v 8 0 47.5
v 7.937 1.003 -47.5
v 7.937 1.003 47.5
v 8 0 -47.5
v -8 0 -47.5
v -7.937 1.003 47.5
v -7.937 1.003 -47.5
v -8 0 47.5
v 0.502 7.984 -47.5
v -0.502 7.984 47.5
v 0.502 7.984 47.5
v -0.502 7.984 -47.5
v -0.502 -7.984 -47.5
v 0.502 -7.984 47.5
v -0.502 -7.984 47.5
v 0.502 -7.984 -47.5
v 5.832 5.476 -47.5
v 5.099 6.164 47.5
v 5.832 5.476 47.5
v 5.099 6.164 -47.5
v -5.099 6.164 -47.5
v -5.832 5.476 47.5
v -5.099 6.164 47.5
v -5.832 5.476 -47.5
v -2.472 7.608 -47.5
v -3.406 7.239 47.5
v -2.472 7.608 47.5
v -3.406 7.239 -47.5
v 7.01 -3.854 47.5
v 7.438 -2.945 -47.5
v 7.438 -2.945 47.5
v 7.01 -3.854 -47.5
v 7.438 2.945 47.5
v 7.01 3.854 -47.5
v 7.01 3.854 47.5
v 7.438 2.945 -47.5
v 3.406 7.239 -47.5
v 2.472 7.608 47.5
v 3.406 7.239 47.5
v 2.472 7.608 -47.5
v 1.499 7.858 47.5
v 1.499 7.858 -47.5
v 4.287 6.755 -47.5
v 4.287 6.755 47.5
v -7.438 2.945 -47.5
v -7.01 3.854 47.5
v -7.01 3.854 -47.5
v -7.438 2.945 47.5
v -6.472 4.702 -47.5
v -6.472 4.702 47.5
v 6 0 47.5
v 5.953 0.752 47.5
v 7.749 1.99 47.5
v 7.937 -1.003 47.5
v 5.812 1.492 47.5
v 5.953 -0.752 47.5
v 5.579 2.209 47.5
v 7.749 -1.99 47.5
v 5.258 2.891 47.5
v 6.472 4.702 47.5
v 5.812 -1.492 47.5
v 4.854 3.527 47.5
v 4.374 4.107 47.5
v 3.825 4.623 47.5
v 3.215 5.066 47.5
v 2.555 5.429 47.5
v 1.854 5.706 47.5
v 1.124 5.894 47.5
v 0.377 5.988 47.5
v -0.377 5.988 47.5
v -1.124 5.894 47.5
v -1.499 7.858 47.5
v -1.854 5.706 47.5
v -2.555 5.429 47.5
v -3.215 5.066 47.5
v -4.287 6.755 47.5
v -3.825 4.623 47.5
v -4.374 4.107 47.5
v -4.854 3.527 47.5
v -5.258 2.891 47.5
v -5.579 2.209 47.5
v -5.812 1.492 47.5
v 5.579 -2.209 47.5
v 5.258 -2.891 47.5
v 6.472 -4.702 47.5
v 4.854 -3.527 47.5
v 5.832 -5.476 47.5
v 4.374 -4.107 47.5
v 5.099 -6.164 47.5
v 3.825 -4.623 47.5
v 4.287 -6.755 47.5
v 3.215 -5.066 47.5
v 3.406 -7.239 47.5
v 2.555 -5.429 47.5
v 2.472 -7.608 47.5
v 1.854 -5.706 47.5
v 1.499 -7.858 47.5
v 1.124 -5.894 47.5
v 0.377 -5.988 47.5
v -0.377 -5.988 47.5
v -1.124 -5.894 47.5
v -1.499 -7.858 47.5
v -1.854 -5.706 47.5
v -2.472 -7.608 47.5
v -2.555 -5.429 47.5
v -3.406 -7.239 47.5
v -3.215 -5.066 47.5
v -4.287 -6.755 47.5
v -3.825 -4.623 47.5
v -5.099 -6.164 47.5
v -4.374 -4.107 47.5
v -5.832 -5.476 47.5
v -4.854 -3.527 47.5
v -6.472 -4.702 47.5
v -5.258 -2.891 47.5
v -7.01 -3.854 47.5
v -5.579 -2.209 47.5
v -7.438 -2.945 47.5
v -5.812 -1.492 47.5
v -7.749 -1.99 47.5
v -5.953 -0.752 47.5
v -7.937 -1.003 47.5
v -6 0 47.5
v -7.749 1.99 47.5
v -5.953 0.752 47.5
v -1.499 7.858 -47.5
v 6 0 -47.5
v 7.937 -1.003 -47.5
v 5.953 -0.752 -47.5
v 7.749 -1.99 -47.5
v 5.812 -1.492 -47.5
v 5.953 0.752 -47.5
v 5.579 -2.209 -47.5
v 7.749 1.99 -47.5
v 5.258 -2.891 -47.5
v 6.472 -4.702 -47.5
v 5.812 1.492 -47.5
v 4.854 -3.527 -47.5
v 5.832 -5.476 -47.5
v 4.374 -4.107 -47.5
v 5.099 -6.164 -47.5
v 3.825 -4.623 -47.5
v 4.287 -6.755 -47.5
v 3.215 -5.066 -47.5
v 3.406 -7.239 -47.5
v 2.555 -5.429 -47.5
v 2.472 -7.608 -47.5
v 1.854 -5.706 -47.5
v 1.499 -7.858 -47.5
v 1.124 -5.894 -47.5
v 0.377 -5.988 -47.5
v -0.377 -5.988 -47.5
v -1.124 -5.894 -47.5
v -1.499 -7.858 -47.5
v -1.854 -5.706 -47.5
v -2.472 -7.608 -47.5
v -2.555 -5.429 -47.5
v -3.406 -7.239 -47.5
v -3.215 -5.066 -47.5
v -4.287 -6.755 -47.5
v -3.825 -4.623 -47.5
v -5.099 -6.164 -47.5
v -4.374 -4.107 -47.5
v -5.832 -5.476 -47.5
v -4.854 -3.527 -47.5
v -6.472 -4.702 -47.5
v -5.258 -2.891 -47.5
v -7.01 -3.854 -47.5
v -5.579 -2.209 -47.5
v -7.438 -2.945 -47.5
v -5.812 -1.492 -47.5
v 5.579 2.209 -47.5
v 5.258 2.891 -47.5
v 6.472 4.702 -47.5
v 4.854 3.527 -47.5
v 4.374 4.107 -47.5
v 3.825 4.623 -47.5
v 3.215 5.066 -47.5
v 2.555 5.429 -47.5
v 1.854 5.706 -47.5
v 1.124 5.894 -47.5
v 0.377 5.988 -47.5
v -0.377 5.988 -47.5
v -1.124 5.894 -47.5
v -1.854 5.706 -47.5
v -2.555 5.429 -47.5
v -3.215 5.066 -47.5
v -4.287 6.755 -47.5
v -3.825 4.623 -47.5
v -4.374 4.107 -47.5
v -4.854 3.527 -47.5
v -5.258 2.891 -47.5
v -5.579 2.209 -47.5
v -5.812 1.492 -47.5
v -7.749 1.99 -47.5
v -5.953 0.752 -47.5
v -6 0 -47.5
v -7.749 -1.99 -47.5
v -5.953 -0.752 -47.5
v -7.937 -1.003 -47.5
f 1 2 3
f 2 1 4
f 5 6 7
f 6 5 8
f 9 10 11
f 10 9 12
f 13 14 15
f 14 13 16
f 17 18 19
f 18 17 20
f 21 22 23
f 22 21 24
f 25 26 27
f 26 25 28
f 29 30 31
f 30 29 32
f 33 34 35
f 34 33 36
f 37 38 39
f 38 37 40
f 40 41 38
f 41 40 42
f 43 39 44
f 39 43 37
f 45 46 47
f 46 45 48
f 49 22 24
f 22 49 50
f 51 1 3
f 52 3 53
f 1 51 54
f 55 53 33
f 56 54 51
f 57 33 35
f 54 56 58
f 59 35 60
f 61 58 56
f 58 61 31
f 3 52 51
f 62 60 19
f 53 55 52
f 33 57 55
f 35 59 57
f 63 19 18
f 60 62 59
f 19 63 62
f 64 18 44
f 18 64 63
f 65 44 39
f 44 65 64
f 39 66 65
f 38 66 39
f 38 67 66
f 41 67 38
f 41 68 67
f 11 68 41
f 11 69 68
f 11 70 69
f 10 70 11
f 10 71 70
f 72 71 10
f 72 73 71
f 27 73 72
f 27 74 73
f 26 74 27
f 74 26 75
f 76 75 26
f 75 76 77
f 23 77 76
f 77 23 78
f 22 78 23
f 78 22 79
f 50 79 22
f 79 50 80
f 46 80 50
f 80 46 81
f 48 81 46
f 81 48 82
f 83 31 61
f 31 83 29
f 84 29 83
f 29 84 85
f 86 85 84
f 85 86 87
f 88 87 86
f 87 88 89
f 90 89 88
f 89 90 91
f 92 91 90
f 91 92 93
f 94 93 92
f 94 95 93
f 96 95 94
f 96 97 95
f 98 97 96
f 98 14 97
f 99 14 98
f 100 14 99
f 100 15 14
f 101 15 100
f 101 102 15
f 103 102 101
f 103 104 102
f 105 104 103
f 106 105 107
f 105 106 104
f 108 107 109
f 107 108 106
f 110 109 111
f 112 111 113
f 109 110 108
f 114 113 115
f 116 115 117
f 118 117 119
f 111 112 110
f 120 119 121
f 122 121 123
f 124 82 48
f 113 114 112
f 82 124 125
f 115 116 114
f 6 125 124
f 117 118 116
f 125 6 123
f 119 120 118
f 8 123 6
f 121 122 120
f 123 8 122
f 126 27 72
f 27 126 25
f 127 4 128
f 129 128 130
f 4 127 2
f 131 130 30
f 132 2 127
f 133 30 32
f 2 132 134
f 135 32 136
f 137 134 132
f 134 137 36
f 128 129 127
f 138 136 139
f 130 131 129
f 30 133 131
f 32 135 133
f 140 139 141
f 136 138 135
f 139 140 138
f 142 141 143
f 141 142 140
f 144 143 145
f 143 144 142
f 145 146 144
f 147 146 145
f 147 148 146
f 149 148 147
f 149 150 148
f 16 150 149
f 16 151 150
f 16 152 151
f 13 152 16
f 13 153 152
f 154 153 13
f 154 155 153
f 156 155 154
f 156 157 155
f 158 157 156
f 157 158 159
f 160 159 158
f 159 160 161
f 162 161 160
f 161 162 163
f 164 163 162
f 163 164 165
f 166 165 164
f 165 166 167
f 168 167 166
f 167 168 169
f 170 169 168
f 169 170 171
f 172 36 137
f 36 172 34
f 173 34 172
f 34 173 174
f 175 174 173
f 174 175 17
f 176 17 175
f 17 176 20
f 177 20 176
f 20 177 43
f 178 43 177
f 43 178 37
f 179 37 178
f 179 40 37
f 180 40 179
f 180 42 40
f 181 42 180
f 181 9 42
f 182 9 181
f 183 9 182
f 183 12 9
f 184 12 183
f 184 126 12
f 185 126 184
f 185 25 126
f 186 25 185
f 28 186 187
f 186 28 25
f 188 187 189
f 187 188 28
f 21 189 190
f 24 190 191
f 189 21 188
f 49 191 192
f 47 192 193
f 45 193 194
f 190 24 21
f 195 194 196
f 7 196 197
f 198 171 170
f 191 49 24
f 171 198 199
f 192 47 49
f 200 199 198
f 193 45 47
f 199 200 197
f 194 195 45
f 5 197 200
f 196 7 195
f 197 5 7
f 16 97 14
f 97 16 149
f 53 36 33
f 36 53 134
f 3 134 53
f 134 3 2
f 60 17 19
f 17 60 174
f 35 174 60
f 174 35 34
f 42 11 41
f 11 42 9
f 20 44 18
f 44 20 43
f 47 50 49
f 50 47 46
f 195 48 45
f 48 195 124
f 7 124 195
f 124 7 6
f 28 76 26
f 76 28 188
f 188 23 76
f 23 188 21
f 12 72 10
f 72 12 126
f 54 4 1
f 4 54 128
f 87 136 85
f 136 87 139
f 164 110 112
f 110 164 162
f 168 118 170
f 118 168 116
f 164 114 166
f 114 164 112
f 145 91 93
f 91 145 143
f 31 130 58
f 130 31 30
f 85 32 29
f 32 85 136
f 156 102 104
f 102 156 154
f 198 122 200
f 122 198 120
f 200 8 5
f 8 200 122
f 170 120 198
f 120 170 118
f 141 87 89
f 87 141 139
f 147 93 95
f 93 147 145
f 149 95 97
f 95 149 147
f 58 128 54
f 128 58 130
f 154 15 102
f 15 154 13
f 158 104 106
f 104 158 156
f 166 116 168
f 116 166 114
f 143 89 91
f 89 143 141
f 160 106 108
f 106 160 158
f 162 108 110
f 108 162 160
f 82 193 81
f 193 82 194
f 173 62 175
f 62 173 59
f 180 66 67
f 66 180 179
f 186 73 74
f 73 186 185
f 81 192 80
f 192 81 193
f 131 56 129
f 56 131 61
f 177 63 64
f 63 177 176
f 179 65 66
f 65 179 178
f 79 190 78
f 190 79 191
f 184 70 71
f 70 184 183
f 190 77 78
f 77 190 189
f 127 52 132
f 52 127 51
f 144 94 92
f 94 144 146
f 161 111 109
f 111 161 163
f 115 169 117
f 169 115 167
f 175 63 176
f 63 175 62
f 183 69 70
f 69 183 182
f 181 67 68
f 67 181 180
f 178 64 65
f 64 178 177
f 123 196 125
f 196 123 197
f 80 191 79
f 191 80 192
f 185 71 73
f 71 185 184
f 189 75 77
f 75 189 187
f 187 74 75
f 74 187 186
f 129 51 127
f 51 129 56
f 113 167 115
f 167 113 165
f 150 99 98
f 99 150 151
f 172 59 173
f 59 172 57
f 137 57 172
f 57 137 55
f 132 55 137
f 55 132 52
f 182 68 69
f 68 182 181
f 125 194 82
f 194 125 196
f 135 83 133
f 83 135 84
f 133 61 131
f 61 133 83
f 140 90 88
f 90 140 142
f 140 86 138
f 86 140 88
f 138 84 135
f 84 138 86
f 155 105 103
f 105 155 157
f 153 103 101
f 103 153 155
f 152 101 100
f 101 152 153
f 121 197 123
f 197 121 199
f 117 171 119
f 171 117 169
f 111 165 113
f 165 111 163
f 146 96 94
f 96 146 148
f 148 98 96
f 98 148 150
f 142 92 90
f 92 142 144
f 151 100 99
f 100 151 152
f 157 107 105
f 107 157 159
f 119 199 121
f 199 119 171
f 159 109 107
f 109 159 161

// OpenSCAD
$fn = 50;


difference() {
	union() {
		translate(v = [0, 0, -47.5000000000]) {
			cylinder(h = 95, r = 8.0000000000);
		}
	}
	union() {
		translate(v = [0, 0, -100.0000000000]) {
			cylinder(h = 200, r = 6);
		}
	}
}
